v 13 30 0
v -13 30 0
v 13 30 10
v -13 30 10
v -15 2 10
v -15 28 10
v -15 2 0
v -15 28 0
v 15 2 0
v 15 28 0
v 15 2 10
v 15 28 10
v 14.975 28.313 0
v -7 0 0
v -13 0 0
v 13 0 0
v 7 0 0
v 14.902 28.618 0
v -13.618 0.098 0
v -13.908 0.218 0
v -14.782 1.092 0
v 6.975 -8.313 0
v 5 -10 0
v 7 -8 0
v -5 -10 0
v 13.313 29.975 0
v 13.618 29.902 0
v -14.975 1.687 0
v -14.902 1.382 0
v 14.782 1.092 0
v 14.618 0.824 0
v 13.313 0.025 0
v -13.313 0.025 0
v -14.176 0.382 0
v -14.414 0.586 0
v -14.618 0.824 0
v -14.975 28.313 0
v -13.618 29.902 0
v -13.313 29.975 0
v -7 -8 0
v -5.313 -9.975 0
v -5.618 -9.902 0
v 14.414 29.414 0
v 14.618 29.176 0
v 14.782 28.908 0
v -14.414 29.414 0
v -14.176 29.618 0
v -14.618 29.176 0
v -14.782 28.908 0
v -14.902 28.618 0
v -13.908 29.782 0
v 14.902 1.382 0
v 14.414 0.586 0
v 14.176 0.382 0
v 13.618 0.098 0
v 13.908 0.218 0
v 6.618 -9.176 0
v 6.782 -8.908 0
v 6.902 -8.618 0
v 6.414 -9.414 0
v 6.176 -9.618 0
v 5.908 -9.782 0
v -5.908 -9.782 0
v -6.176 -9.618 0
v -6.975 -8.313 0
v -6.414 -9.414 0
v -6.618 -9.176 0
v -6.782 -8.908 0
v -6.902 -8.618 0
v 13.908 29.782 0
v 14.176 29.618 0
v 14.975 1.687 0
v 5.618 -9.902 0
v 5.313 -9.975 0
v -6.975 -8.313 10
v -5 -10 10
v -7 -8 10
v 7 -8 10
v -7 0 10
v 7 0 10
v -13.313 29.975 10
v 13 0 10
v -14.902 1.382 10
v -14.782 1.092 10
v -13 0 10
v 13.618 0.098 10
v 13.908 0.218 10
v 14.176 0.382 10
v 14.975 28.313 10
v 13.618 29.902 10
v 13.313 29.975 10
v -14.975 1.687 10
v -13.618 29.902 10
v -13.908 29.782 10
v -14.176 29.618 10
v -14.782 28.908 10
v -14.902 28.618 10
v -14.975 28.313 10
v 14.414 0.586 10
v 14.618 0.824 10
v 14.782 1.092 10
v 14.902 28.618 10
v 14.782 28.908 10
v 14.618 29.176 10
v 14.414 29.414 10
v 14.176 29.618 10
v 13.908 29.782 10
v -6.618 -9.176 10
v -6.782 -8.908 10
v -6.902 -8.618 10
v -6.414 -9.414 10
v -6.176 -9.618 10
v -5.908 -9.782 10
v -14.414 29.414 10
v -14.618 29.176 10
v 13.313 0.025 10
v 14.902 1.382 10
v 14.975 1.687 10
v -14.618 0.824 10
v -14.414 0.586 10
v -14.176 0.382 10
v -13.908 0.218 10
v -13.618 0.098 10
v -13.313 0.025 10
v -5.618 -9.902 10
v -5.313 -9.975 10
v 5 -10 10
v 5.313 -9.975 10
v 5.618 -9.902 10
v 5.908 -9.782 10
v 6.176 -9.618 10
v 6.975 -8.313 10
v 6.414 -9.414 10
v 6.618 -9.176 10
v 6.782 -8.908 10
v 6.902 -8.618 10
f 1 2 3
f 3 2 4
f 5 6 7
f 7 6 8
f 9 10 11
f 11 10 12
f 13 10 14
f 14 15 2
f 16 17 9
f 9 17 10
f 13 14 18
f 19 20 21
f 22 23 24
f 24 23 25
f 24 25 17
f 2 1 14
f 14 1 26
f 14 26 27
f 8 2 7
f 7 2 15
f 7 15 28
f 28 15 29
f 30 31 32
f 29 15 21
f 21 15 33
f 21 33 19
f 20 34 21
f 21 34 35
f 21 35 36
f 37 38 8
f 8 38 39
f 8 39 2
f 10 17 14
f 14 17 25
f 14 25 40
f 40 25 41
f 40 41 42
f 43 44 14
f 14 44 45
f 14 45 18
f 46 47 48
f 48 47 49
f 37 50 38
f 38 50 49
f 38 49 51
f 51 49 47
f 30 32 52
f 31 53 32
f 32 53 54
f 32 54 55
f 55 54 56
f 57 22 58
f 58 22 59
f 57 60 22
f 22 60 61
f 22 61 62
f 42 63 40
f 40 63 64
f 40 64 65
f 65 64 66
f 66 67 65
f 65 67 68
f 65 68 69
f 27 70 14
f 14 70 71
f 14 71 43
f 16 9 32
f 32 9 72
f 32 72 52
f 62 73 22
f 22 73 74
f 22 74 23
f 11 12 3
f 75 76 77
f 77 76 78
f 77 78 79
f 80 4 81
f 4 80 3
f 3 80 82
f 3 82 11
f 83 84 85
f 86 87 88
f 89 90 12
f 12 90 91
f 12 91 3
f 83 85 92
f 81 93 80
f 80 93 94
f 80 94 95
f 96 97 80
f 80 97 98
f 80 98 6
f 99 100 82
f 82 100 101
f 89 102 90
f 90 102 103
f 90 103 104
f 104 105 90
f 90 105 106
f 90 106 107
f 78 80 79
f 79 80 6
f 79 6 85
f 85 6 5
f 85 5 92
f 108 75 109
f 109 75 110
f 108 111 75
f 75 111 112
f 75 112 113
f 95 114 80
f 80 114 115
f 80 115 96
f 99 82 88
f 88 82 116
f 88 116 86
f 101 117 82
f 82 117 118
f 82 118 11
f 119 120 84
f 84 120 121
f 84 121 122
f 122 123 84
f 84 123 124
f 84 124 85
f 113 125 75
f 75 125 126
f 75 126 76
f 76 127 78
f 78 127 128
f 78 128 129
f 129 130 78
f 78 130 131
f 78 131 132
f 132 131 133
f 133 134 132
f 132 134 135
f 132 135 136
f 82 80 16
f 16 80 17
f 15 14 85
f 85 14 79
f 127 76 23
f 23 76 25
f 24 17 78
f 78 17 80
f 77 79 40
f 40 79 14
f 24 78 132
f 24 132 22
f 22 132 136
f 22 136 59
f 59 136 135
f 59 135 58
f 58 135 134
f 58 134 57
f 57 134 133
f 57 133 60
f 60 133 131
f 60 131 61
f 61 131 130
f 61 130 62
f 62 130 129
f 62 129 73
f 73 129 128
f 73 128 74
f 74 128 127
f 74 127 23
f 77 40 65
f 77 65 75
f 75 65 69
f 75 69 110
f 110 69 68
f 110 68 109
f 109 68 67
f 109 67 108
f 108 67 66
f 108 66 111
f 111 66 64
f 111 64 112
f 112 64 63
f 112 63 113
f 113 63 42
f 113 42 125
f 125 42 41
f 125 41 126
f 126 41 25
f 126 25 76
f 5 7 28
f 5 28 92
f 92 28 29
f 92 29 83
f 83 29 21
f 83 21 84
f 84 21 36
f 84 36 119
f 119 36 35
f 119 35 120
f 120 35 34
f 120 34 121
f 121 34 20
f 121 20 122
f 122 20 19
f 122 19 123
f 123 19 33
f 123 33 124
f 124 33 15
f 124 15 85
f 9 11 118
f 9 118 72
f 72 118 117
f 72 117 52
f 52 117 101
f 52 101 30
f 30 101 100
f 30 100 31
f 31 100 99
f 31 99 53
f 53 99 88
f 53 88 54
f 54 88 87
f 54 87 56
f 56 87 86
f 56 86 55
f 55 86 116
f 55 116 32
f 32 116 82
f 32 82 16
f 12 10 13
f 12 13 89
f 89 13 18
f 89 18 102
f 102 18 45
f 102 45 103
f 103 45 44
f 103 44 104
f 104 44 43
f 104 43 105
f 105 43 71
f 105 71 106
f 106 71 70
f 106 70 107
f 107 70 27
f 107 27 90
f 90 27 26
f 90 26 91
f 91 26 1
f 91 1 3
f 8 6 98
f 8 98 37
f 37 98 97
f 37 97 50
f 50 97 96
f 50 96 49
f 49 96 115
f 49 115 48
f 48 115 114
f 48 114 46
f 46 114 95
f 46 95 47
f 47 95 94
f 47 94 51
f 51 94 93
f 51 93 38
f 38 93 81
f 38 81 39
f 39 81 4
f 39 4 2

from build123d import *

# Parameters (mm, degrees)
SKETCH1_W           = 14
SKETCH1_H           = 10
SKETCH1_W_2         = 30
SKETCH1_H_2         = 30
BOSS_EXTRUDE1_DEPTH = 10
FILLET1_R           = 2


with BuildPart() as part:
    # Sketch1 → Boss-Extrude1 (new body)
    with BuildSketch(Plane.XY):
        with Locations((0, -5)):
            Rectangle(SKETCH1_W, SKETCH1_H)
        with Locations((0, 15)):
            Rectangle(SKETCH1_W_2, SKETCH1_H_2)
    extrude(amount=BOSS_EXTRUDE1_DEPTH)

    # Fillet1
    fillet1_edges = [part.edges().sort_by_distance(p)[0] for p in [
        (7, -10, 5),
        (-7, -10, 5),
        (-15, 0, 5),
        (-15, 30, 5),
        (15, 30, 5),
        (15, 0, 5),
    ]]
    fillet(fillet1_edges, radius=FILLET1_R)


solid = part.part
